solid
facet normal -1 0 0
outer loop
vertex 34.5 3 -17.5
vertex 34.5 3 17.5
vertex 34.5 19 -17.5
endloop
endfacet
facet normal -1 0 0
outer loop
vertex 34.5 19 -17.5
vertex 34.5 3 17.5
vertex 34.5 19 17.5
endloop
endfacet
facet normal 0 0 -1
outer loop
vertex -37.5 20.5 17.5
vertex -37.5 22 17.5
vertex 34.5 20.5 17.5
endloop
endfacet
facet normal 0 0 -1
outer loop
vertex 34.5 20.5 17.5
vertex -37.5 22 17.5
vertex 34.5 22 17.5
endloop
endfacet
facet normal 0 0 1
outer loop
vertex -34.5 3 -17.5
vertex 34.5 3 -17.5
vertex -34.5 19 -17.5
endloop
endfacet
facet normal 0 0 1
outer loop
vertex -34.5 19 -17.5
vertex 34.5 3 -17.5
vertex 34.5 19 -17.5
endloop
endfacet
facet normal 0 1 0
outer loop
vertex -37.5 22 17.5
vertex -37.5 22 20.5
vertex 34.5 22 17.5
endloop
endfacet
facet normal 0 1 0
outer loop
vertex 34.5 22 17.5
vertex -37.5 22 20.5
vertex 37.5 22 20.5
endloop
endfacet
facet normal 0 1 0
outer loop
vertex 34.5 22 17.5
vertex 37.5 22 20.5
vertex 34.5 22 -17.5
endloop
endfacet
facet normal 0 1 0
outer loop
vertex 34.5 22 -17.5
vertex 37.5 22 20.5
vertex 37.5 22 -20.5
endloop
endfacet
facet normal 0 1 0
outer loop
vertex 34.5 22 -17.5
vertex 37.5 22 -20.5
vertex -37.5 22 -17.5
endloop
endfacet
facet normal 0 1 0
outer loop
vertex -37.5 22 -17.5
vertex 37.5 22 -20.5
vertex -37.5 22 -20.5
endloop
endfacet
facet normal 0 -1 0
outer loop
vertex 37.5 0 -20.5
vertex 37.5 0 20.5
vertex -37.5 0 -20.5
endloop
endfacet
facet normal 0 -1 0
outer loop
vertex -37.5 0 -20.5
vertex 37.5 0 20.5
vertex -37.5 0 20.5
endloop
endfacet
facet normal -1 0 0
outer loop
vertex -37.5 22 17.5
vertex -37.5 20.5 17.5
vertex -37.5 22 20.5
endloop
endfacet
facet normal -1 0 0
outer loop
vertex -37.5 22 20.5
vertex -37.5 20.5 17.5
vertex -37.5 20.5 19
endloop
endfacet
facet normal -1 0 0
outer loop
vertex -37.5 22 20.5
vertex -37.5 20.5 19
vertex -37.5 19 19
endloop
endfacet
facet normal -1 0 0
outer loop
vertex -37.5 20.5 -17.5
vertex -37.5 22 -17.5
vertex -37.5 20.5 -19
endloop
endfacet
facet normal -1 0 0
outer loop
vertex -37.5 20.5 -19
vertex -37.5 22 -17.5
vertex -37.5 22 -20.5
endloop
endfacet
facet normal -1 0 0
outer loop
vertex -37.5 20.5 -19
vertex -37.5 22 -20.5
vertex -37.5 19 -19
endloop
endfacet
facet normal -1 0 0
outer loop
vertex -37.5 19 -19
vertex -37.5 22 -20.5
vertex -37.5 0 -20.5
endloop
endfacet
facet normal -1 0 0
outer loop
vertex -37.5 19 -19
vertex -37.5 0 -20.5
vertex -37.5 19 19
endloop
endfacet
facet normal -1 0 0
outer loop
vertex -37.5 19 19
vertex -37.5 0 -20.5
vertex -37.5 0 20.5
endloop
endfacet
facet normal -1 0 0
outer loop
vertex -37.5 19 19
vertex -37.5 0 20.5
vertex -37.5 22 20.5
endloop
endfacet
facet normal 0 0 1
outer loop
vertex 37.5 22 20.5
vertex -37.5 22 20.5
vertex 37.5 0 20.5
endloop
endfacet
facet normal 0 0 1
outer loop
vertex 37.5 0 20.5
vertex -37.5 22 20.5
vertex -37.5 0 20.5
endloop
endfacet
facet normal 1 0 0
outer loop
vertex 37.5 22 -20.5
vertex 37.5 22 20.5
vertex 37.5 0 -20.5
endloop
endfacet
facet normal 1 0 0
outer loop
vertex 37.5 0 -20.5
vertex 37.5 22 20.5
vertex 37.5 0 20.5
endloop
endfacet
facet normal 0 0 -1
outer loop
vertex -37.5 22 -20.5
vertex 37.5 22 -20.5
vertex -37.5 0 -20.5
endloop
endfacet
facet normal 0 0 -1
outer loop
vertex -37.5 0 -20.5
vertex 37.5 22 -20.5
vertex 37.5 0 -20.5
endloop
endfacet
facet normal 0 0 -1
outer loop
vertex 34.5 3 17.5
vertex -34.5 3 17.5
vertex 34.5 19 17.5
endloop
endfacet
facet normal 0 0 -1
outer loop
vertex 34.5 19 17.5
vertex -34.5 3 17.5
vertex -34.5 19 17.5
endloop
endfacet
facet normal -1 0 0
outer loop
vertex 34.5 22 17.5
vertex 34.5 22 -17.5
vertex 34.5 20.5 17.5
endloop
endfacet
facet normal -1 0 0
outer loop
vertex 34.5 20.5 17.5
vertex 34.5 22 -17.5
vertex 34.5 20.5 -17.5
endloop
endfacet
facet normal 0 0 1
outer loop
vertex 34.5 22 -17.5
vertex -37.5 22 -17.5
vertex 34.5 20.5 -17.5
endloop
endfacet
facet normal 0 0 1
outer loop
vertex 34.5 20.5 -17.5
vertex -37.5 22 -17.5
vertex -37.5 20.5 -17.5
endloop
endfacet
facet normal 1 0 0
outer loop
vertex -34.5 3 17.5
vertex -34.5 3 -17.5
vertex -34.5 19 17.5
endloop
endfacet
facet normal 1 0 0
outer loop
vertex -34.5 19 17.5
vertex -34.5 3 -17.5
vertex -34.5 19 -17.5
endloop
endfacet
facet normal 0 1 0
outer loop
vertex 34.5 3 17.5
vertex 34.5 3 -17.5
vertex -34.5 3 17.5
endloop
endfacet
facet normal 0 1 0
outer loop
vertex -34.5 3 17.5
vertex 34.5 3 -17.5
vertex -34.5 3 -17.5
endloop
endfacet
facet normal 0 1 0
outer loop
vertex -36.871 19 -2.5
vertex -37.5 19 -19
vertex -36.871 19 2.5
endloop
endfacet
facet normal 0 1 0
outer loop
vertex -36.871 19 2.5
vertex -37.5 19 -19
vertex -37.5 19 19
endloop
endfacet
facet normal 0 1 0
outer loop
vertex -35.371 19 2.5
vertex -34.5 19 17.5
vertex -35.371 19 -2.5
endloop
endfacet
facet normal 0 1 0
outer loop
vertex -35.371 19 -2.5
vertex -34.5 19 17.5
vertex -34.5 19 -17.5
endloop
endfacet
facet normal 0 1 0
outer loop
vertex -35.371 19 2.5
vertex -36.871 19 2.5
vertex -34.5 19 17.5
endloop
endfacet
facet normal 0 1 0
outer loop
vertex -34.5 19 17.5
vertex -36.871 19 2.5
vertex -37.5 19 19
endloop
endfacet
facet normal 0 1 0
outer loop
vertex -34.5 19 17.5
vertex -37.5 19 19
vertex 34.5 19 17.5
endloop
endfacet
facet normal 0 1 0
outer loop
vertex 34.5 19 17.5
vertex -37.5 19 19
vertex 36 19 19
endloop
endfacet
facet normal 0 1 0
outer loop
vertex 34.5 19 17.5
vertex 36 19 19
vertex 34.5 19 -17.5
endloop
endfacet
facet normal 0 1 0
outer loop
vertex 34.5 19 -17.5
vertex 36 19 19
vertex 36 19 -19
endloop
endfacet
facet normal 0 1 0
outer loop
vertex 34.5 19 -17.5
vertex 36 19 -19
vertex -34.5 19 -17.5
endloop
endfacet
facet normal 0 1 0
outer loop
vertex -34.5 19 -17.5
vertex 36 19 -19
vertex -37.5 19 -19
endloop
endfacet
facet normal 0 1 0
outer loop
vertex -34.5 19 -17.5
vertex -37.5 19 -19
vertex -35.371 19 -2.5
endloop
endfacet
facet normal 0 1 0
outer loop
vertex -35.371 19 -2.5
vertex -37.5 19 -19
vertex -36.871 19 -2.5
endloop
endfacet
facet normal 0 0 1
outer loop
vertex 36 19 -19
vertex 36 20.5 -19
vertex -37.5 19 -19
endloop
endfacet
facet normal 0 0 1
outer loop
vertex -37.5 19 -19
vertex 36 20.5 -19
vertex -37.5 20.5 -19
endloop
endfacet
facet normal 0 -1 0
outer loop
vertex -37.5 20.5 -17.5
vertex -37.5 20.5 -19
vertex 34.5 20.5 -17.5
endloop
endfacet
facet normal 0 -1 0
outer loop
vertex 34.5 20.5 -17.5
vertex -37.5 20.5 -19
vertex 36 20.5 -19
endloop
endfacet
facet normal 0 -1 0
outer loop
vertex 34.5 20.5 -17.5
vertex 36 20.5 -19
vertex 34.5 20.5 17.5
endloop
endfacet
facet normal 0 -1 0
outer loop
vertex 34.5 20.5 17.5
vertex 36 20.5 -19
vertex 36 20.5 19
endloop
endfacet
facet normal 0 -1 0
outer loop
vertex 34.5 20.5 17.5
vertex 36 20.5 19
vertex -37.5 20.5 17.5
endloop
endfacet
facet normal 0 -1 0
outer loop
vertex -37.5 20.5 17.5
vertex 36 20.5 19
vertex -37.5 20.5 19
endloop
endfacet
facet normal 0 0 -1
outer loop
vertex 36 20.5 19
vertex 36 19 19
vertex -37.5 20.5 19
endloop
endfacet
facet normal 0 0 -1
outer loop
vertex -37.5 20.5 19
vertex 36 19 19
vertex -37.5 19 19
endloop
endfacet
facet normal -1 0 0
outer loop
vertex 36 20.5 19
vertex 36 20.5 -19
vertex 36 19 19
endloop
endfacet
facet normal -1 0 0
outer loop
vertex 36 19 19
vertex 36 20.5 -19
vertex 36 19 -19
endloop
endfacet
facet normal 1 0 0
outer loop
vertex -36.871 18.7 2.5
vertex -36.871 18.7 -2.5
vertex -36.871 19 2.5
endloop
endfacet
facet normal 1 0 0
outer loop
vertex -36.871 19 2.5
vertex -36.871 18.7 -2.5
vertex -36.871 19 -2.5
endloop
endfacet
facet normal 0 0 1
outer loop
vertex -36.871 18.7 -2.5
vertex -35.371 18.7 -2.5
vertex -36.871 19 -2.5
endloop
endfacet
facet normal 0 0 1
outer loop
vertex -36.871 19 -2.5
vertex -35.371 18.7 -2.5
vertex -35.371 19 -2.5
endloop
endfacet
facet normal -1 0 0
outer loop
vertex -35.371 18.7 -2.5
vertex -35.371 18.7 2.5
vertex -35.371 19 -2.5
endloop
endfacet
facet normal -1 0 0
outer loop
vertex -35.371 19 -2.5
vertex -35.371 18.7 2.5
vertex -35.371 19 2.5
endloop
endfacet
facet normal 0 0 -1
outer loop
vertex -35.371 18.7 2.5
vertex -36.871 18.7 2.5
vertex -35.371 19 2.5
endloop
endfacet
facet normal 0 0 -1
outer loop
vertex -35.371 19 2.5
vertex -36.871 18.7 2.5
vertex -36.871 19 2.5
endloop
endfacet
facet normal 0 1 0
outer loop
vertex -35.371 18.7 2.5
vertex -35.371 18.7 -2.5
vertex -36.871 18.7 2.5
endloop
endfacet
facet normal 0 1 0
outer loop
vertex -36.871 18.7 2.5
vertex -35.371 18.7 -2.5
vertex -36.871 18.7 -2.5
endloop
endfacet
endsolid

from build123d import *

# Parameters (mm, degrees)
CROQUIS1_W              = 75
CROQUIS1_H              = 41
CROQUIS1_W_2            = 69
CROQUIS1_H_2            = 35
SALIENTE_EXTRUIR1_DEPTH = 22
CROQUIS1_2_W            = 69
CROQUIS1_2_H            = 35
SALIENTE_EXTRUIR2_DEPTH = 3
CORTAR_EXTRUIR1_DEPTH   = 72
CROQUIS4_W              = 38
CROQUIS4_H              = 1.5
CORTAR_EXTRUIR2_DEPTH   = 1.5
CROQUIS7_W              = 1.5
CROQUIS7_H              = 5
CORTAR_EXTRUIR3_DEPTH   = 0.3


with BuildPart() as part:
    # Croquis1 → Saliente-Extruir1 (new body)
    with BuildSketch(Plane(origin=(0, 0, 0), x_dir=(1, 0, 0), z_dir=(0, 1, 0))):
        Rectangle(CROQUIS1_W, CROQUIS1_H)
        Rectangle(CROQUIS1_W_2, CROQUIS1_H_2, mode=Mode.SUBTRACT)
    extrude(amount=SALIENTE_EXTRUIR1_DEPTH)

    # Croquis1<2> → Saliente-Extruir2 (add)
    with BuildSketch(Plane(origin=(0, 0, 0), x_dir=(1, 0, 0), z_dir=(0, 1, 0))):
        Rectangle(CROQUIS1_2_W, CROQUIS1_2_H)
    extrude(amount=SALIENTE_EXTRUIR2_DEPTH)

    # Croquis3 → Cortar-Extruir1 (cut)
    with BuildSketch(Plane.ZY.offset(37.5)):
        Polygon((17.5, 22), (-17.5, 22), (-17.5, 20.5), (-19, 20.5), (-19, 19), (19, 19), (19, 20.5), (17.5, 20.5), align=None)
    extrude(amount=-CORTAR_EXTRUIR1_DEPTH, mode=Mode.SUBTRACT)

    # Croquis4 → Cortar-Extruir2 (cut)
    with BuildSketch(Plane.ZY.offset(-34.5)):
        with Locations((0, 19.75)):
            Rectangle(CROQUIS4_W, CROQUIS4_H)
    extrude(amount=-CORTAR_EXTRUIR2_DEPTH, mode=Mode.SUBTRACT)

    # Croquis7 → Cortar-Extruir3 (cut)
    with BuildSketch(Plane(origin=(0, 19, 0), x_dir=(1, 0, 0), z_dir=(0, 1, 0))):
        with Locations((-36.121212609, 0)):
            Rectangle(CROQUIS7_W, CROQUIS7_H)
    extrude(amount=-CORTAR_EXTRUIR3_DEPTH, mode=Mode.SUBTRACT)


solid = part.part
